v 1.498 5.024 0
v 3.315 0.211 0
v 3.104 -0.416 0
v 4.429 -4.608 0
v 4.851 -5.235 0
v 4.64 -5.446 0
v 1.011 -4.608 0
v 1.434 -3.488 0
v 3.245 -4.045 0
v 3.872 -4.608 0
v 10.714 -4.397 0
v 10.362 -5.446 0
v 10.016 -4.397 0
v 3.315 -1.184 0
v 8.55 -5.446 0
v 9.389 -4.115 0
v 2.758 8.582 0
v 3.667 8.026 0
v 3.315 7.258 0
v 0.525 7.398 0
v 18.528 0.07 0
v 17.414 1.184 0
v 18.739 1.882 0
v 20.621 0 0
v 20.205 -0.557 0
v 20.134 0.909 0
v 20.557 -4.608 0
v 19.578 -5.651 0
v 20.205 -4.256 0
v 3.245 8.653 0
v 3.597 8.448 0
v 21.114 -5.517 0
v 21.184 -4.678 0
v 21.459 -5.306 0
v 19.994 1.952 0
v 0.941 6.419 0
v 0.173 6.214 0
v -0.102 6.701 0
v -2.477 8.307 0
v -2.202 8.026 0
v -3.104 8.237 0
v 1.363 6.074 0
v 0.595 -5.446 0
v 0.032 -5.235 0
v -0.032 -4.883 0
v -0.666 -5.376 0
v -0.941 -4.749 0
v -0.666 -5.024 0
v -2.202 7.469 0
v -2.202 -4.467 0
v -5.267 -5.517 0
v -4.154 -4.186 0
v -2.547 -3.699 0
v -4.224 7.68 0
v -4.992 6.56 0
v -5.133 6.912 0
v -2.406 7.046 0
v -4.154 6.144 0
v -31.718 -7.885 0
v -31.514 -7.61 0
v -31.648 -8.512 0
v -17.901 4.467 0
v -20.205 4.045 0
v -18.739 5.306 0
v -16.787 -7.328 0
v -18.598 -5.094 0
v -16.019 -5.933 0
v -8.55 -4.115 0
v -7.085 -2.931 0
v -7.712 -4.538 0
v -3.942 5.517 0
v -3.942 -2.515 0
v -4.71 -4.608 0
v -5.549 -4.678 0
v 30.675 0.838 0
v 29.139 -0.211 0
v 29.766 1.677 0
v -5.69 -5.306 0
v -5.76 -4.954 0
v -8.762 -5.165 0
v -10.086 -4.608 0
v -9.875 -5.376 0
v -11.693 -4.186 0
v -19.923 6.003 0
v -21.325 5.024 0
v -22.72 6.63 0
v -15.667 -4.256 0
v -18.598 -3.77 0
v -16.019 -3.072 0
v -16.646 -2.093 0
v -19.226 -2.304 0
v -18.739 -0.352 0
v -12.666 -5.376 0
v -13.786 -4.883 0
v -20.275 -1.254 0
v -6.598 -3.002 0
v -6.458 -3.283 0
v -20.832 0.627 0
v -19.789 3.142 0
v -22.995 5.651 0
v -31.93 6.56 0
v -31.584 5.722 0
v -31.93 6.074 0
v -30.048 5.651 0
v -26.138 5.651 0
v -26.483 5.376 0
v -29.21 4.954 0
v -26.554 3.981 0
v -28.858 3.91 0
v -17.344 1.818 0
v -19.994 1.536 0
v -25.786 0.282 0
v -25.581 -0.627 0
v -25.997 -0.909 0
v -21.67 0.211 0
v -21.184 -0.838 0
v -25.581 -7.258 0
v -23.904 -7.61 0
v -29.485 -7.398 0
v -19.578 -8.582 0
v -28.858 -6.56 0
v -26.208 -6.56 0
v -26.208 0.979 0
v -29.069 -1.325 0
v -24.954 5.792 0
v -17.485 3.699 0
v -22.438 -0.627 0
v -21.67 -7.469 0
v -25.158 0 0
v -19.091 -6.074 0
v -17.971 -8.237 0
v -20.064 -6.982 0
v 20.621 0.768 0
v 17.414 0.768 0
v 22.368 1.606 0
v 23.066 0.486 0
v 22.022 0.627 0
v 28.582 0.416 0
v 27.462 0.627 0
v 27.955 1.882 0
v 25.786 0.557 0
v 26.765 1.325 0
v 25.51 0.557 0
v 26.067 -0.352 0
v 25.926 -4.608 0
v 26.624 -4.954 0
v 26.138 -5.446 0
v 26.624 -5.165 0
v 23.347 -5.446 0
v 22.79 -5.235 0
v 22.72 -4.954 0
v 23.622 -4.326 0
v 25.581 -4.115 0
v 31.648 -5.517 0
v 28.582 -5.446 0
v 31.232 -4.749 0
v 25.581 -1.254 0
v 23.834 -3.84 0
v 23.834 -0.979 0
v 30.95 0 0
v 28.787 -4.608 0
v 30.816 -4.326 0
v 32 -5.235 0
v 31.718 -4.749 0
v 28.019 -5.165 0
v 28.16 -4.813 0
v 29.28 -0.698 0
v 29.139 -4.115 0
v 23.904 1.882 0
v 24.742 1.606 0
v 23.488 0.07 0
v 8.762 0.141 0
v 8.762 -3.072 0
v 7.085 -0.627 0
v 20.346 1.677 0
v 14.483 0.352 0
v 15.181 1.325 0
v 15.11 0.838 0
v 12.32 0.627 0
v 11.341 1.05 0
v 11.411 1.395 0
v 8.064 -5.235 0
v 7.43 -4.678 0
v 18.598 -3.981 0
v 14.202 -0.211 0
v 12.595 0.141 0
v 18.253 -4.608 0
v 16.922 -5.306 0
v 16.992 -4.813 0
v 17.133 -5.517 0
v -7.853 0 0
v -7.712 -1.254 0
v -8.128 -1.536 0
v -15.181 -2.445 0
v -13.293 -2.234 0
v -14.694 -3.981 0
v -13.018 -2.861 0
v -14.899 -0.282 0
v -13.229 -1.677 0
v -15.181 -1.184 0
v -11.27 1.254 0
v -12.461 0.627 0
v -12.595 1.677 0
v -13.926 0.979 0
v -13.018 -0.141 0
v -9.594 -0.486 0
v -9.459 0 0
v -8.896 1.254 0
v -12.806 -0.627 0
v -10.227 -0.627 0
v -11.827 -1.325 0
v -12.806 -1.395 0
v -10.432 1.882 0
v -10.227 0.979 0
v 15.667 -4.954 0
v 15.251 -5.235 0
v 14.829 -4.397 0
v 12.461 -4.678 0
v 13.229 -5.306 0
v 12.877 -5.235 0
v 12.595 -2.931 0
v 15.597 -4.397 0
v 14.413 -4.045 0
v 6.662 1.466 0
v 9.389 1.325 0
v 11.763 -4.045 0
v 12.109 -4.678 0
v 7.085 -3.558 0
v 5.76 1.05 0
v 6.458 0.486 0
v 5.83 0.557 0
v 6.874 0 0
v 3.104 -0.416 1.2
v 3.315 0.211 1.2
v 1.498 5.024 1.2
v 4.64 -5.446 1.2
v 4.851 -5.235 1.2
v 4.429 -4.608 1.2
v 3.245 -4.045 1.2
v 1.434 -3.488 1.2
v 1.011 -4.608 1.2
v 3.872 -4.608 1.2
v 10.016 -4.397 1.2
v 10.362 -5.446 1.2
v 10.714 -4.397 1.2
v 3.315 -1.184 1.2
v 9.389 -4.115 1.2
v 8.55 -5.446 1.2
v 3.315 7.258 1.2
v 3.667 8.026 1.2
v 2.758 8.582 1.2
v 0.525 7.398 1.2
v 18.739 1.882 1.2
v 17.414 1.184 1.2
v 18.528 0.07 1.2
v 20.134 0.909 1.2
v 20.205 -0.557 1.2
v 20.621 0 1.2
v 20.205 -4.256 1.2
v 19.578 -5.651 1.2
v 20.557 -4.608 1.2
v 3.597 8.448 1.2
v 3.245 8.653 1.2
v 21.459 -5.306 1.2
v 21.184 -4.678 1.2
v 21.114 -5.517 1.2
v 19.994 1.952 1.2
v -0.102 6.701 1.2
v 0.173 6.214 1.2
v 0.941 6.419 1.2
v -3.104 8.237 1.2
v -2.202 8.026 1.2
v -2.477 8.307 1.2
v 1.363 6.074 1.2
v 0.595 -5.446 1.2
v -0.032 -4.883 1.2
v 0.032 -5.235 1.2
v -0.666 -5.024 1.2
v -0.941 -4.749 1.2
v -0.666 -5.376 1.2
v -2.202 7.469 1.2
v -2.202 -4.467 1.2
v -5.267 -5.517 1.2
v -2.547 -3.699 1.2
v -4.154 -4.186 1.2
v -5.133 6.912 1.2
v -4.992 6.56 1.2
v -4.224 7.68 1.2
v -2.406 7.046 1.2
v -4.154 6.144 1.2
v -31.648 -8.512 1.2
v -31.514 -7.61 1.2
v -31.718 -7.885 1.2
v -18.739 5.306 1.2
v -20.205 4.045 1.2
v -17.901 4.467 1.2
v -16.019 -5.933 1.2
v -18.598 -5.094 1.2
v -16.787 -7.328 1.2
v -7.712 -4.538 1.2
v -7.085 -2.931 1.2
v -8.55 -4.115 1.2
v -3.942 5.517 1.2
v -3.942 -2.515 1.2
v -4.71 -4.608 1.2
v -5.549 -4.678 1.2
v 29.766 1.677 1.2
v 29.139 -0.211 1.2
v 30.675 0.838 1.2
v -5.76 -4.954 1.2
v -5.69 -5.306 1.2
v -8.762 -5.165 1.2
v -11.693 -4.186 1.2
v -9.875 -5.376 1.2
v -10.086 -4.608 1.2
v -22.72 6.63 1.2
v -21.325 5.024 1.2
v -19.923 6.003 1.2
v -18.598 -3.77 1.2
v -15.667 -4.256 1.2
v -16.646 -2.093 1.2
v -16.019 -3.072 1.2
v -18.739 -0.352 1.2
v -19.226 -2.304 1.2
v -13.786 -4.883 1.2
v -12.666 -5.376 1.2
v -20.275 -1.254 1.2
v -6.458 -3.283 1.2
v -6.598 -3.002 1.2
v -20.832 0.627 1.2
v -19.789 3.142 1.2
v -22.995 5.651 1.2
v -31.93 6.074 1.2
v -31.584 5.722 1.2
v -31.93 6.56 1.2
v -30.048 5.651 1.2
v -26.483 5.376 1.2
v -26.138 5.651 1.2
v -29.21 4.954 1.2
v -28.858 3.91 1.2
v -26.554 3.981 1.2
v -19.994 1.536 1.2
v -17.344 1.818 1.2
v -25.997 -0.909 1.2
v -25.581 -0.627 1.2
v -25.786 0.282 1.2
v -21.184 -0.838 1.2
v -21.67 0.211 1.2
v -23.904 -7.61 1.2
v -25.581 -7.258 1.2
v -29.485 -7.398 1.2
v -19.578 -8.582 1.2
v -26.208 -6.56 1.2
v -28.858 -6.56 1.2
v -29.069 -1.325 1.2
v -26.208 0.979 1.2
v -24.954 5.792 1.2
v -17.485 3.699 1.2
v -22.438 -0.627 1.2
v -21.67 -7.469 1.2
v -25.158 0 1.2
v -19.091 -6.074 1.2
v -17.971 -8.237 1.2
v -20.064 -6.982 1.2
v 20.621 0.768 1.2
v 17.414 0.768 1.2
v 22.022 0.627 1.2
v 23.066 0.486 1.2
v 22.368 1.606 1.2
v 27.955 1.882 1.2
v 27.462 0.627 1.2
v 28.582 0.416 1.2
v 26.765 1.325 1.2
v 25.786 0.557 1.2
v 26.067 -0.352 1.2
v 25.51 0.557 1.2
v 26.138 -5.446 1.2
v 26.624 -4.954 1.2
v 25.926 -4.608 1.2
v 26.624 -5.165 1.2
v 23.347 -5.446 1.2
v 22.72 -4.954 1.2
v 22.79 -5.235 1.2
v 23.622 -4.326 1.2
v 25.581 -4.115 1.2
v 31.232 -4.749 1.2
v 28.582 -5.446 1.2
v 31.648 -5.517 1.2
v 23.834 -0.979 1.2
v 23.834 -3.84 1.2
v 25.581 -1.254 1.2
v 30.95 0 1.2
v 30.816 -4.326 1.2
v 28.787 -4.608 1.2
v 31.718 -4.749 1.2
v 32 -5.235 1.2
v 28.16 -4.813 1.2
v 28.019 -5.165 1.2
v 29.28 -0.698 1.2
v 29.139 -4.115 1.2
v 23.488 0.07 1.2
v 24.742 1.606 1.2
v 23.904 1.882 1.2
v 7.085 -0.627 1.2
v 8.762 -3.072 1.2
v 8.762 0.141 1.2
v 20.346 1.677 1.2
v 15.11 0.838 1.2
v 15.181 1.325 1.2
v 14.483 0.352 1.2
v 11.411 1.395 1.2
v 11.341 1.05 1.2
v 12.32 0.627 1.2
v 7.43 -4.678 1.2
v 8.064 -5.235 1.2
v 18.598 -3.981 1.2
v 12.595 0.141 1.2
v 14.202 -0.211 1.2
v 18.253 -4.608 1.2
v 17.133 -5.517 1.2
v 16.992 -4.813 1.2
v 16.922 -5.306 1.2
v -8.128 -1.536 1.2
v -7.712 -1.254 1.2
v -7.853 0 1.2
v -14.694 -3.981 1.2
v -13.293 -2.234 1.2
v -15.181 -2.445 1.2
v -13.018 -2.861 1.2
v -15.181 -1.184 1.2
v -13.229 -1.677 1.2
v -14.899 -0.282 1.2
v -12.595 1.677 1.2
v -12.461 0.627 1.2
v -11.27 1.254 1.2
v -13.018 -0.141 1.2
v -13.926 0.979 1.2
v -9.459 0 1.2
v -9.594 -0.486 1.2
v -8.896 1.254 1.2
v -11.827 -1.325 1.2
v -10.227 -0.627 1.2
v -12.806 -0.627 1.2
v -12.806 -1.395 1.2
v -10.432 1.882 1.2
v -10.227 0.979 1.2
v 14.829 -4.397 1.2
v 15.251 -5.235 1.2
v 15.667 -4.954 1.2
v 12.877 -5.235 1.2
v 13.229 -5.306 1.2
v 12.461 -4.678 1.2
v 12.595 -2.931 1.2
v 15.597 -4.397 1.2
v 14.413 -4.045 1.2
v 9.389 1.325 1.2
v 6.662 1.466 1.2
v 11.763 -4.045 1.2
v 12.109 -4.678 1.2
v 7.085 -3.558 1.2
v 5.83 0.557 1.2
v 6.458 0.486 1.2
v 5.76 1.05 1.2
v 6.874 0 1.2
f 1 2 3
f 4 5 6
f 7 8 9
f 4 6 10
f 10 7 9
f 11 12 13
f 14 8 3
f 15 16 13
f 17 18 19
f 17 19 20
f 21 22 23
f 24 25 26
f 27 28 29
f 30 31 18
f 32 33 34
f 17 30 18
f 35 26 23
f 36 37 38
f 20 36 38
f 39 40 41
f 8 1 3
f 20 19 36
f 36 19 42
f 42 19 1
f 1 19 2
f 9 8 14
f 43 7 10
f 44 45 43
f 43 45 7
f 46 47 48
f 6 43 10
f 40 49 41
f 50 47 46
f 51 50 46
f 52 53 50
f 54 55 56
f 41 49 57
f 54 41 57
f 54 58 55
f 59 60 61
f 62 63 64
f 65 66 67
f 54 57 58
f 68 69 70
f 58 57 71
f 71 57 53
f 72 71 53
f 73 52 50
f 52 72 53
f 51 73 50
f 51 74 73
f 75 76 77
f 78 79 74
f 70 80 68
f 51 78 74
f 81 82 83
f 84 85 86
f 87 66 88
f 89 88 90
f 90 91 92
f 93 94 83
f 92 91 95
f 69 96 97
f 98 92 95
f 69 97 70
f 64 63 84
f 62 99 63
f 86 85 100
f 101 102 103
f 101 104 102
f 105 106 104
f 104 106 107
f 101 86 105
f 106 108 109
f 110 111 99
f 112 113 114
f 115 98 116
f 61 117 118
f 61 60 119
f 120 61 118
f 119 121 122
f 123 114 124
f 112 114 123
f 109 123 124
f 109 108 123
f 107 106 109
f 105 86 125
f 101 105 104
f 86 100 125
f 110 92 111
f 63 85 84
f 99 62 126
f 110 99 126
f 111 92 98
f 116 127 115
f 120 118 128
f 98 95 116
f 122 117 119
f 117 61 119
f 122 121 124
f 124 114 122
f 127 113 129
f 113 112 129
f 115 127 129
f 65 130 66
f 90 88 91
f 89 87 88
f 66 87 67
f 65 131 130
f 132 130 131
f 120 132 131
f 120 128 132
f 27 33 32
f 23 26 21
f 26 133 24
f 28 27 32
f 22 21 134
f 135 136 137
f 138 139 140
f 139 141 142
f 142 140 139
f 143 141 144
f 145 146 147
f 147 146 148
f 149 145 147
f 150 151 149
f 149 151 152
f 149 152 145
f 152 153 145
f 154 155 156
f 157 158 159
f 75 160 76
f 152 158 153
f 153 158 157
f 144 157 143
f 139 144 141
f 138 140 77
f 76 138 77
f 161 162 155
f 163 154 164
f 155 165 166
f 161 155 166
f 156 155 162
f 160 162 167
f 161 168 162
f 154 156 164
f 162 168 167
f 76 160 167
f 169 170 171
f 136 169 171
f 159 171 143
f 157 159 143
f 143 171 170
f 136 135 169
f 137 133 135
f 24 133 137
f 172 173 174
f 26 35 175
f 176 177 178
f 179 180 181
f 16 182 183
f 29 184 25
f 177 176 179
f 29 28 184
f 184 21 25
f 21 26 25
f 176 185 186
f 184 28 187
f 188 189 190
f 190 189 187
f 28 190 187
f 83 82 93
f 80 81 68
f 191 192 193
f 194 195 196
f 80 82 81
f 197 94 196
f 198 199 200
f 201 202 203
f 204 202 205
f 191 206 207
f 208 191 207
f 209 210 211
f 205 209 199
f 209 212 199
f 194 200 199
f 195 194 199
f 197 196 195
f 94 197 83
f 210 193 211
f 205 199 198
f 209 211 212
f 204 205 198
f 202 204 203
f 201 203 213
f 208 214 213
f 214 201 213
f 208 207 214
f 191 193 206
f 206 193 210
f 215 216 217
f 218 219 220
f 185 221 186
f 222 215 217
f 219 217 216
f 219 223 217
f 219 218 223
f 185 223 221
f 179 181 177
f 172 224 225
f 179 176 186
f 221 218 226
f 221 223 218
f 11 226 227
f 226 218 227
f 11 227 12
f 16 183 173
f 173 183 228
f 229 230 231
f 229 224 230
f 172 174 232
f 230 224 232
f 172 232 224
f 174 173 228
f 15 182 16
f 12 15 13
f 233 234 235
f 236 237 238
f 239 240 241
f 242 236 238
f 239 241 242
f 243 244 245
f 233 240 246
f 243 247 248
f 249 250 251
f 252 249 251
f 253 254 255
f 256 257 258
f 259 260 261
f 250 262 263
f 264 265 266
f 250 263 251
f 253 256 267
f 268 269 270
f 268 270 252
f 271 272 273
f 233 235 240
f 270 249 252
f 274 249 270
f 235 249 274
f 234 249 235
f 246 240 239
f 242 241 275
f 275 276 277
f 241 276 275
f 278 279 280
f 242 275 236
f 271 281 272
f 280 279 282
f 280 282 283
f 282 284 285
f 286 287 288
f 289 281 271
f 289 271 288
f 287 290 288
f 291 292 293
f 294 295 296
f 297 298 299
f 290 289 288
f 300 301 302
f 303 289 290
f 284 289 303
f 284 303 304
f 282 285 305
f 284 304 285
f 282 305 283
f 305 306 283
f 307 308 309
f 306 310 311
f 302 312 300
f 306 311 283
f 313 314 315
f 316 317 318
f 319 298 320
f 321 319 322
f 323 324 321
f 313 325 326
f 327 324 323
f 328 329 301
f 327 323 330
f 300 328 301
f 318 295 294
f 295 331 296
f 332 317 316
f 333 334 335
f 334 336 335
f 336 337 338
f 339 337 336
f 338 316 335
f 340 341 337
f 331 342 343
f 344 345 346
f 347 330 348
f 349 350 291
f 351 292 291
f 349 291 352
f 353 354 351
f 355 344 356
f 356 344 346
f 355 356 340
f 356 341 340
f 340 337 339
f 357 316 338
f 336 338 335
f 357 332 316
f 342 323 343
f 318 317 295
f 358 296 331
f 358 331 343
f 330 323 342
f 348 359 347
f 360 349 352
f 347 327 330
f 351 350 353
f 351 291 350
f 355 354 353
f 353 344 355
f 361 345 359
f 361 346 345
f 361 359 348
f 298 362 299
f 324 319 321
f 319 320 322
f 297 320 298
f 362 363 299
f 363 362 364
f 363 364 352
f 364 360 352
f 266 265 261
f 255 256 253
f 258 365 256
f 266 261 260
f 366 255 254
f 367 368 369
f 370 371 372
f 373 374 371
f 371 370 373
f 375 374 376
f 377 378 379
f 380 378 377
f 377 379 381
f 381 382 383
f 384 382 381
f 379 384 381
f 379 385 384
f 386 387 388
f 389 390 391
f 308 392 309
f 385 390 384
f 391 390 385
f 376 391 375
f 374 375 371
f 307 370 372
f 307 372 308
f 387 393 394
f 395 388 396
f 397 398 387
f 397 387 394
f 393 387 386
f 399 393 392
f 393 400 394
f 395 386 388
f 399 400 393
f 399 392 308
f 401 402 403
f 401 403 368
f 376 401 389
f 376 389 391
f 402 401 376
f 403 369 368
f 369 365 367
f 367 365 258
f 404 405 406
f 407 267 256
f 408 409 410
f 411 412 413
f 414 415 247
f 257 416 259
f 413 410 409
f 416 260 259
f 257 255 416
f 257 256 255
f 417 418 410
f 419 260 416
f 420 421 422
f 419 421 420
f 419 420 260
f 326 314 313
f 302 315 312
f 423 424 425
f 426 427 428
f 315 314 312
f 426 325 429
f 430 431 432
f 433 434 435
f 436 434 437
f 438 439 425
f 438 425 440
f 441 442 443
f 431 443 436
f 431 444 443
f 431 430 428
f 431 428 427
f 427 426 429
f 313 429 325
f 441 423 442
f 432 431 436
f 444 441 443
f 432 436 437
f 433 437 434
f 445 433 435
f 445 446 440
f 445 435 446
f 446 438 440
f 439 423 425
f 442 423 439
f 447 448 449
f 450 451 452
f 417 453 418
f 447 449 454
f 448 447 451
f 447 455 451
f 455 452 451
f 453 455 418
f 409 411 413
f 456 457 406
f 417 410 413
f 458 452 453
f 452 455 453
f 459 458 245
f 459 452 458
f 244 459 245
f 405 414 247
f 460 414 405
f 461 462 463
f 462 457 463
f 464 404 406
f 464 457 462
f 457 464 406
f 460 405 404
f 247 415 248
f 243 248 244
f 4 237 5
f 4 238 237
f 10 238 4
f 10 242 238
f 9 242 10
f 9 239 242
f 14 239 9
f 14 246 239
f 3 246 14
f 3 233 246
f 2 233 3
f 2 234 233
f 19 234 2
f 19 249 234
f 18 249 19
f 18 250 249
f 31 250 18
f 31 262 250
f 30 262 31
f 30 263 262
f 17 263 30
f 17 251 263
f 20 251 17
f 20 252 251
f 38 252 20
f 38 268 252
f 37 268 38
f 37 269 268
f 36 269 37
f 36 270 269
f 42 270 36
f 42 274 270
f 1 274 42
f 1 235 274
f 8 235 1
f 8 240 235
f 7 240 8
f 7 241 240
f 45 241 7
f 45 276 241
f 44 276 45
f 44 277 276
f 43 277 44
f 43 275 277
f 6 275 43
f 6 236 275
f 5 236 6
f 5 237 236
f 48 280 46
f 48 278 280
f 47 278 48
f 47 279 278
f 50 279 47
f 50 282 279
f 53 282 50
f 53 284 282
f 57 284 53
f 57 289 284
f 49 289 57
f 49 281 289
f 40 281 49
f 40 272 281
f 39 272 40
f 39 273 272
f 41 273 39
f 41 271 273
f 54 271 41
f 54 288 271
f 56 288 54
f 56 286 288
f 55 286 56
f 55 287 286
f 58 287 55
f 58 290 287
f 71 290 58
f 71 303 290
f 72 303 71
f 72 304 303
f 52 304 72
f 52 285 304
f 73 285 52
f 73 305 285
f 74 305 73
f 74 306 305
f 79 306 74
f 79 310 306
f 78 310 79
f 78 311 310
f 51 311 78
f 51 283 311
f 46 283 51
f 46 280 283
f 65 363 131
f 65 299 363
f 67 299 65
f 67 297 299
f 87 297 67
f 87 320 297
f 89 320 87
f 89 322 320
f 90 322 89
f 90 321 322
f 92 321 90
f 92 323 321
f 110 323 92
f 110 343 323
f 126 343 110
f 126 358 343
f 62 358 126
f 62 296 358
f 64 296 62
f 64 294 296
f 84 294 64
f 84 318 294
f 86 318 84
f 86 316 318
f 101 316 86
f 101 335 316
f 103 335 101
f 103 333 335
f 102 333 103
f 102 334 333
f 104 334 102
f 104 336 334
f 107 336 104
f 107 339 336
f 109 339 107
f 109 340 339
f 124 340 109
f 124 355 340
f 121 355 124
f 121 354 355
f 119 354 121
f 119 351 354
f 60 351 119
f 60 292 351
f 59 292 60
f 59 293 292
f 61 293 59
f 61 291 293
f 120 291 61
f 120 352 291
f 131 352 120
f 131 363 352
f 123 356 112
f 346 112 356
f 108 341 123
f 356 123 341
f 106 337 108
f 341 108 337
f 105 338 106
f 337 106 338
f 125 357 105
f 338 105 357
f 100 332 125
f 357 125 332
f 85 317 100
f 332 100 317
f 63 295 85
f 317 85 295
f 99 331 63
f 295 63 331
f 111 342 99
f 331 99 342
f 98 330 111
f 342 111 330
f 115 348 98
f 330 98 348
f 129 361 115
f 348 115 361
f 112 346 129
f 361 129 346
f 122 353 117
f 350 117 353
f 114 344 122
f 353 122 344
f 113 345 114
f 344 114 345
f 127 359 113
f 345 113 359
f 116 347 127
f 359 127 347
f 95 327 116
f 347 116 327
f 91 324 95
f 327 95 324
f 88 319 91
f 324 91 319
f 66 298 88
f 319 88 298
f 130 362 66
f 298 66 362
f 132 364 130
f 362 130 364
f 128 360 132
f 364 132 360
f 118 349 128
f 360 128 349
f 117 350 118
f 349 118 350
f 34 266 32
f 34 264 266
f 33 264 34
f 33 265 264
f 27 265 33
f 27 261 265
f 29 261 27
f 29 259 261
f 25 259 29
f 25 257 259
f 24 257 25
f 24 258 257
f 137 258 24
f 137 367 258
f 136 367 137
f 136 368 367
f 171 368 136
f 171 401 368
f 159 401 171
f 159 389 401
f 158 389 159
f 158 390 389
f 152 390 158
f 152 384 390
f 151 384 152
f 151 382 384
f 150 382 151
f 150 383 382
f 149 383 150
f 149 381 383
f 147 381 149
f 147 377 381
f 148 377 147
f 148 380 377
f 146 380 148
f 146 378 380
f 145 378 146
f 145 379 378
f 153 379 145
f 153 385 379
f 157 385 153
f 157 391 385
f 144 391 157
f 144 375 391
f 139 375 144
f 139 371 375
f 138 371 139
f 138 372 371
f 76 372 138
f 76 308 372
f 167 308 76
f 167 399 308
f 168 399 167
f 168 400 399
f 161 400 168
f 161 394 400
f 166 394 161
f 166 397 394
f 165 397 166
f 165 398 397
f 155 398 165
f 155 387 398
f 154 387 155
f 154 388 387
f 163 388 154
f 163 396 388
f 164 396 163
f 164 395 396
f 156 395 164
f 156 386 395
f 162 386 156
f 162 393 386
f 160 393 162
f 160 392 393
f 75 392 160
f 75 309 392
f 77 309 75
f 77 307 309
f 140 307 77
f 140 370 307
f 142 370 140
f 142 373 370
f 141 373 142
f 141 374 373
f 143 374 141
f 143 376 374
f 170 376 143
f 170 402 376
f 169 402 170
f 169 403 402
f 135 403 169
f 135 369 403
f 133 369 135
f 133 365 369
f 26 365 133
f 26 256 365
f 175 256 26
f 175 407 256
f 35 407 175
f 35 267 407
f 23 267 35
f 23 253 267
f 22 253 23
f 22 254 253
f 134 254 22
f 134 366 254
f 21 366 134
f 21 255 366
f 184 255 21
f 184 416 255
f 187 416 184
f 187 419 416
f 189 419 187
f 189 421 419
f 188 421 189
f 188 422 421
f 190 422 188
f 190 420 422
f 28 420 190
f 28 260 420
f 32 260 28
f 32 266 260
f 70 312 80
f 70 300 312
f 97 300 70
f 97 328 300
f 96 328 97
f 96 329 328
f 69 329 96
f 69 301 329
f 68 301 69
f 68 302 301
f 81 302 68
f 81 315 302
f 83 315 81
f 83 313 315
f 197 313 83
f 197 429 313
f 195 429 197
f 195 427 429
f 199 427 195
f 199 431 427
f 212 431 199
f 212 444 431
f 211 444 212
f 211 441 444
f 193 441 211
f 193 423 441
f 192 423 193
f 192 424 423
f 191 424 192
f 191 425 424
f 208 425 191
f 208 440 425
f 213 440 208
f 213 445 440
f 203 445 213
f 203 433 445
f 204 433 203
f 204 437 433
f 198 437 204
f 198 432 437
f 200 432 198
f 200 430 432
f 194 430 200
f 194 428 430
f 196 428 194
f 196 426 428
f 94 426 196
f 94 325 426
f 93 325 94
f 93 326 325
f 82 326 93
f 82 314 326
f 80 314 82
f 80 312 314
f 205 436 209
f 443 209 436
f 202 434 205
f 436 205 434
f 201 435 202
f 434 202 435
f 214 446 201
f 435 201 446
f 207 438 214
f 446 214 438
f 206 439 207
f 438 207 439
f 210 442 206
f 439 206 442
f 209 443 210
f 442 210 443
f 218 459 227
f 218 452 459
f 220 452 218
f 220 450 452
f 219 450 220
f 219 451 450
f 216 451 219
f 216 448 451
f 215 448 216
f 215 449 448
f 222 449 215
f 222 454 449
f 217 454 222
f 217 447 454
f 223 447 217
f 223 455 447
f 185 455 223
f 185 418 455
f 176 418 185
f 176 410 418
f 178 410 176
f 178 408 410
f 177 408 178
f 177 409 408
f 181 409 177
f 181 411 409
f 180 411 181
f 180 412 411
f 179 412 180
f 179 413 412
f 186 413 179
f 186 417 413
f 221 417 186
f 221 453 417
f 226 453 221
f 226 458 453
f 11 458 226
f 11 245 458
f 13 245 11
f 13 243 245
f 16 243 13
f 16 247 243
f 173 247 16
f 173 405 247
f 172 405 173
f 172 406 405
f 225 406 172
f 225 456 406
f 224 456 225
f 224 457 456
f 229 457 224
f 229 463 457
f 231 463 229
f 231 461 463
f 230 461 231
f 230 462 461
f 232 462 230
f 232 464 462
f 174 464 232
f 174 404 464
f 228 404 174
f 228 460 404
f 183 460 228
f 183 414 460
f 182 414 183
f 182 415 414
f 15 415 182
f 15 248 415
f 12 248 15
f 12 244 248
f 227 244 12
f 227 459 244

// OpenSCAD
// file: bellum_text_traced.scad
// bellum_text_traced.scad
// "Bellum" lettering traced from the source logo image with
// OpenCV (4x cubic upscale, threshold, morphological cleanup,
// approxPolyDP 2px). Coordinates are centered, Y-up, and
// normalized to 100 units of total width.
// Regenerate with scratchpad/trace2_emit.py if retuning.

module bellum_traced_2d() {
    polygon(points=[[-49.89,10.25],[-49.89,9.49],[-49.35,8.94],[-46.95,8.83],[-45.64,7.74],[-45.09,6.11],[-45.42,-2.07],[-45.09,-10.25],[-46.07,-11.56],[-49.24,-11.89],[-49.56,-12.32],[-49.45,-13.30],[-30.59,-13.41],[-28.08,-12.87],[-26.23,-11.45],[-25.03,-9.27],[-24.48,-6.65],[-25.03,-4.80],[-26.01,-3.27],[-29.28,-0.55],[-27.10,2.84],[-27.32,5.78],[-27.97,6.98],[-29.28,8.29],[-31.13,9.38],[-35.50,10.36],[-40.62,-1.42],[-39.97,-0.98],[-35.06,-0.98],[-33.10,-1.31],[-31.68,-1.96],[-30.04,-3.60],[-29.06,-5.89],[-29.06,-7.96],[-29.83,-9.49],[-31.35,-10.91],[-33.86,-11.67],[-37.35,-11.89],[-39.97,-11.34],[-40.95,-10.25],[-41.38,8.40],[-40.84,8.83],[-38.99,9.05],[-35.93,8.83],[-33.32,7.85],[-31.57,6.32],[-30.92,4.91],[-31.24,2.40],[-32.55,0.98],[-33.86,0.33],[-39.31,0.00],[-40.29,0.44],[-40.95,1.53],[-41.49,6.22]], paths=[[0, 1, 2, 3, 4, 5, 6, 7, 8, 9, 10, 11, 12, 13, 14, 15, 16, 17, 18, 19, 20, 21, 22, 23, 24, 25], [26, 27, 28, 29, 30, 31, 32, 33, 34, 35, 36, 37, 38, 39], [40, 41, 42, 43, 44, 45, 46, 47, 48, 49, 50, 51, 52, 53]]);
    polygon(points=[[-21.76,1.53],[-23.28,-0.44],[-23.72,-1.85],[-23.72,-3.82],[-22.96,-6.22],[-21.54,-7.63],[-19.79,-8.40],[-15.43,-8.40],[-13.69,-8.07],[-12.05,-7.09],[-10.09,-5.13],[-10.31,-4.69],[-11.07,-4.58],[-13.36,-6.43],[-15.76,-7.20],[-18.27,-6.54],[-20.34,-4.47],[-20.77,-3.49],[-20.67,-2.62],[-20.01,-2.18],[-18.48,-2.07],[-12.70,-2.40],[-12.05,-1.96],[-12.27,0.00],[-13.90,1.96],[-16.30,2.94],[-19.68,2.62],[-20.34,-0.22],[-19.47,0.98],[-17.61,1.96],[-15.98,1.53],[-14.78,0.00],[-14.99,-0.76],[-15.98,-0.98],[-20.01,-0.98]], paths=[[0, 1, 2, 3, 4, 5, 6, 7, 8, 9, 10, 11, 12, 13, 14, 15, 16, 17, 18, 19, 20, 21, 22, 23, 24, 25, 26], [27, 28, 29, 30, 31, 32, 33, 34]]);
    polygon(points=[[-3.87,12.98],[-4.85,12.87],[-6.60,12.00],[-8.02,10.80],[-7.80,10.25],[-6.49,9.60],[-6.16,8.62],[-6.16,-3.93],[-6.49,-6.54],[-7.36,-7.20],[-8.67,-7.31],[-9.00,-7.74],[-8.89,-8.29],[-8.23,-8.62],[-1.04,-8.40],[-1.04,-7.85],[-1.47,-7.42],[-3.44,-6.98],[-3.98,-5.78],[-3.76,11.01],[-3.44,11.67],[-3.44,12.54]], paths=[[0, 1, 2, 3, 4, 5, 6, 7, 8, 9, 10, 11, 12, 13, 14, 15, 16, 17, 18, 19, 20, 21]]);
    polygon(points=[[5.07,13.52],[4.31,13.41],[0.82,11.56],[-0.16,10.47],[0.27,9.71],[1.47,10.03],[2.13,9.49],[2.34,7.85],[2.24,-5.45],[1.58,-7.20],[-0.05,-7.63],[0.05,-8.18],[0.93,-8.51],[7.25,-8.51],[7.58,-8.18],[6.92,-7.20],[6.05,-7.20],[5.07,-6.32],[5.18,-1.85],[4.85,-0.65],[5.18,0.33],[5.18,11.34],[5.73,12.54],[5.62,13.20]], paths=[[0, 1, 2, 3, 4, 5, 6, 7, 8, 9, 10, 11, 12, 13, 14, 15, 16, 17, 18, 19, 20, 21, 22, 23]]);
    polygon(points=[[9.00,1.64],[9.11,0.87],[10.09,0.76],[10.74,0.00],[11.07,-0.98],[11.07,-5.56],[11.61,-7.31],[12.60,-8.18],[13.36,-8.51],[16.19,-8.51],[18.92,-7.31],[19.47,-7.31],[20.12,-8.18],[20.67,-8.29],[23.83,-8.18],[24.48,-7.74],[24.37,-6.87],[23.17,-6.87],[22.52,-6.32],[22.19,-0.33],[22.63,0.55],[23.61,1.31],[23.72,2.07],[17.83,2.18],[17.72,1.64],[19.25,0.98],[19.68,0.22],[19.68,-4.58],[18.38,-6.32],[16.74,-6.87],[15.65,-6.87],[14.67,-6.43],[13.69,-4.80],[13.69,0.22],[14.67,2.07],[10.41,2.29]], paths=[[0, 1, 2, 3, 4, 5, 6, 7, 8, 9, 10, 11, 12, 13, 14, 15, 16, 17, 18, 19, 20, 21, 22, 23, 24, 25, 26, 27, 28, 29, 30, 31, 32, 33, 34, 35]]);
    polygon(points=[[27.21,1.85],[27.21,1.20],[28.95,0.11],[29.06,-6.22],[28.52,-7.20],[26.55,-7.52],[26.44,-8.29],[26.77,-8.62],[30.59,-8.83],[32.99,-8.62],[33.53,-8.29],[33.10,-7.31],[32.12,-7.20],[31.57,-6.65],[31.57,-0.87],[32.22,0.00],[34.41,0.98],[36.04,0.76],[36.70,0.11],[37.24,-1.53],[37.24,-6.00],[36.91,-6.76],[35.50,-7.74],[35.61,-8.18],[36.48,-8.51],[40.84,-8.51],[41.60,-8.07],[41.60,-7.74],[40.51,-7.20],[39.97,-6.43],[39.97,-1.96],[40.73,-0.55],[42.91,0.98],[44.66,0.65],[45.53,-0.33],[45.75,-1.09],[45.53,-6.43],[44.98,-7.20],[44.00,-7.52],[43.78,-8.07],[44.66,-8.51],[49.45,-8.62],[50.00,-8.18],[49.56,-7.42],[48.80,-7.42],[48.15,-6.76],[48.36,0.00],[47.93,1.31],[46.51,2.62],[43.68,2.94],[41.82,2.07],[40.29,0.87],[39.86,0.87],[38.66,2.51],[37.35,2.94],[34.95,2.51],[32.22,1.20],[31.46,1.42],[31.79,2.62],[31.24,3.05],[29.28,2.94]], paths=[[0, 1, 2, 3, 4, 5, 6, 7, 8, 9, 10, 11, 12, 13, 14, 15, 16, 17, 18, 19, 20, 21, 22, 23, 24, 25, 26, 27, 28, 29, 30, 31, 32, 33, 34, 35, 36, 37, 38, 39, 40, 41, 42, 43, 44, 45, 46, 47, 48, 49, 50, 51, 52, 53, 54, 55, 56, 57, 58, 59, 60]]);
}

bellum_traced_2d();
// file: bellum_badge_002.scad
// bellum_badge_002.scad
// v002: "Bellum" lettering traced from the source logo image (see
// bellum_text_traced.scad) instead of approximated with a system font,
// so the letterforms match the original exactly.
// Two-color badge of the "Bellum" checkerboard logo, built as separate
// printable parts (print some in white, some in black, glue together):
//   base_disc()          black - circle background; its top surface shows
//                        through the lattice holes as the black squares
//   white_lattice()      white - diamond border + white squares + grout
//                        webs, one connected piece; glue onto the disc
//   black_tiles()        black - optional drop-in tiles if you want the
//                        black squares flush with the white top surface
//   text_plate_black()   black - outline plate behind the letters (the
//                        logo's dark text outline)
//   text_letters_white() white - "Bellum" letters, glue onto the plate
//
// Everything scales from badge_d. Layer thicknesses and fit clearance are
// absolute (printer-dependent), so they stay put when you rescale.
// Companion files export one part each: _base, _lattice, _tiles,
// _text_black, _text_white. This master file shows the assembled badge.

$fa = 2;
$fs = 0.4;

// ---- scale ----
badge_d = 80;       // badge diameter: THE scale knob
n       = 5;        // checker tiles per row (odd -> black diamond corners)

// ---- thicknesses (absolute mm, independent of badge_d) ----
t_base = 3;         // black disc
t_top  = 2;         // white lattice and drop-in tiles (total badge = 5)
t_text = 1.2;       // each text layer (plate and letters)
clr    = 0.15;      // per-side XY clearance for the drop-in tiles

// ---- proportions (fractions of badge_d, from the logo) ----
diamond_frac = 0.94;   // diamond diagonal / badge diameter
border_w = max(0.045 * badge_d, 1.6);  // white rim around the checker field
grout_w  = max(0.014 * badge_d, 0.8);  // white web between tiles
text_w   = 0.80 * badge_d;             // width of "Bellum"
outline_w = max(0.022 * badge_d, 1.2); // black outline around the letters

use <bellum_text_traced.scad>  // lettering traced from the logo image

// ---- derived ----
half_diag = diamond_frac * badge_d / 2;
sq_o  = half_diag * sqrt(2);            // outer side of the white diamond
sq_f  = sq_o - 2 * border_w;            // side of the checker field
tile  = (sq_f - (n - 1) * grout_w) / n; // checker tile size
pitch = tile + grout_w;

eps = 0.01;

// ---------------- 2D shapes ----------------

// centers of the black squares, in the unrotated field frame
function tile_org(i) = -sq_f / 2 + i * pitch;

module black_squares_2d(shrink = 0) {
    for (i = [0 : n - 1], j = [0 : n - 1])
        if ((i + j) % 2 == 0)
            translate([tile_org(i) + shrink, tile_org(j) + shrink])
                square(tile - 2 * shrink);
}

// white diamond: border + white squares + grout webs (one connected piece)
module lattice_2d() {
    rotate(45) difference() {
        square(sq_o, center = true);
        black_squares_2d();
    }
}

// traced lettering is normalized to 100 units wide, centered
module text_2d() {
    scale(text_w / 100) bellum_traced_2d();
}

// ---------------- printable parts (each flat on Z=0) ----------------

module base_disc() {
    linear_extrude(t_base) circle(badge_d / 2);
}

module white_lattice() {
    linear_extrude(t_top) lattice_2d();
}

// optional flush inlays for the black squares, laid out for printing
module black_tiles() {
    for (i = [0 : n - 1], j = [0 : n - 1])
        if ((i + j) % 2 == 0)
            translate([i * (tile + 3), j * (tile + 3)])
                linear_extrude(t_top)
                    square(tile - 2 * clr);
}

module text_plate_black() {
    linear_extrude(t_text) offset(r = outline_w) text_2d();
}

module text_letters_white() {
    linear_extrude(t_text) text_2d();
}

// ---------------- assembled preview ----------------

module assembly() {
    color([0.15, 0.15, 0.15])  base_disc();
    color("white")   translate([0, 0, t_base]) white_lattice();
    color([0.15, 0.15, 0.15])  translate([0, 0, t_base + t_top]) text_plate_black();
    color("white")   translate([0, 0, t_base + t_top + t_text])
                         text_letters_white();
}

assembly();
// main file
// bellum_badge_002_text_white.scad - print in WHITE
// "Bellum" letters. Glue onto the black outline plate.
use <bellum_badge_002.scad>
text_letters_white();
